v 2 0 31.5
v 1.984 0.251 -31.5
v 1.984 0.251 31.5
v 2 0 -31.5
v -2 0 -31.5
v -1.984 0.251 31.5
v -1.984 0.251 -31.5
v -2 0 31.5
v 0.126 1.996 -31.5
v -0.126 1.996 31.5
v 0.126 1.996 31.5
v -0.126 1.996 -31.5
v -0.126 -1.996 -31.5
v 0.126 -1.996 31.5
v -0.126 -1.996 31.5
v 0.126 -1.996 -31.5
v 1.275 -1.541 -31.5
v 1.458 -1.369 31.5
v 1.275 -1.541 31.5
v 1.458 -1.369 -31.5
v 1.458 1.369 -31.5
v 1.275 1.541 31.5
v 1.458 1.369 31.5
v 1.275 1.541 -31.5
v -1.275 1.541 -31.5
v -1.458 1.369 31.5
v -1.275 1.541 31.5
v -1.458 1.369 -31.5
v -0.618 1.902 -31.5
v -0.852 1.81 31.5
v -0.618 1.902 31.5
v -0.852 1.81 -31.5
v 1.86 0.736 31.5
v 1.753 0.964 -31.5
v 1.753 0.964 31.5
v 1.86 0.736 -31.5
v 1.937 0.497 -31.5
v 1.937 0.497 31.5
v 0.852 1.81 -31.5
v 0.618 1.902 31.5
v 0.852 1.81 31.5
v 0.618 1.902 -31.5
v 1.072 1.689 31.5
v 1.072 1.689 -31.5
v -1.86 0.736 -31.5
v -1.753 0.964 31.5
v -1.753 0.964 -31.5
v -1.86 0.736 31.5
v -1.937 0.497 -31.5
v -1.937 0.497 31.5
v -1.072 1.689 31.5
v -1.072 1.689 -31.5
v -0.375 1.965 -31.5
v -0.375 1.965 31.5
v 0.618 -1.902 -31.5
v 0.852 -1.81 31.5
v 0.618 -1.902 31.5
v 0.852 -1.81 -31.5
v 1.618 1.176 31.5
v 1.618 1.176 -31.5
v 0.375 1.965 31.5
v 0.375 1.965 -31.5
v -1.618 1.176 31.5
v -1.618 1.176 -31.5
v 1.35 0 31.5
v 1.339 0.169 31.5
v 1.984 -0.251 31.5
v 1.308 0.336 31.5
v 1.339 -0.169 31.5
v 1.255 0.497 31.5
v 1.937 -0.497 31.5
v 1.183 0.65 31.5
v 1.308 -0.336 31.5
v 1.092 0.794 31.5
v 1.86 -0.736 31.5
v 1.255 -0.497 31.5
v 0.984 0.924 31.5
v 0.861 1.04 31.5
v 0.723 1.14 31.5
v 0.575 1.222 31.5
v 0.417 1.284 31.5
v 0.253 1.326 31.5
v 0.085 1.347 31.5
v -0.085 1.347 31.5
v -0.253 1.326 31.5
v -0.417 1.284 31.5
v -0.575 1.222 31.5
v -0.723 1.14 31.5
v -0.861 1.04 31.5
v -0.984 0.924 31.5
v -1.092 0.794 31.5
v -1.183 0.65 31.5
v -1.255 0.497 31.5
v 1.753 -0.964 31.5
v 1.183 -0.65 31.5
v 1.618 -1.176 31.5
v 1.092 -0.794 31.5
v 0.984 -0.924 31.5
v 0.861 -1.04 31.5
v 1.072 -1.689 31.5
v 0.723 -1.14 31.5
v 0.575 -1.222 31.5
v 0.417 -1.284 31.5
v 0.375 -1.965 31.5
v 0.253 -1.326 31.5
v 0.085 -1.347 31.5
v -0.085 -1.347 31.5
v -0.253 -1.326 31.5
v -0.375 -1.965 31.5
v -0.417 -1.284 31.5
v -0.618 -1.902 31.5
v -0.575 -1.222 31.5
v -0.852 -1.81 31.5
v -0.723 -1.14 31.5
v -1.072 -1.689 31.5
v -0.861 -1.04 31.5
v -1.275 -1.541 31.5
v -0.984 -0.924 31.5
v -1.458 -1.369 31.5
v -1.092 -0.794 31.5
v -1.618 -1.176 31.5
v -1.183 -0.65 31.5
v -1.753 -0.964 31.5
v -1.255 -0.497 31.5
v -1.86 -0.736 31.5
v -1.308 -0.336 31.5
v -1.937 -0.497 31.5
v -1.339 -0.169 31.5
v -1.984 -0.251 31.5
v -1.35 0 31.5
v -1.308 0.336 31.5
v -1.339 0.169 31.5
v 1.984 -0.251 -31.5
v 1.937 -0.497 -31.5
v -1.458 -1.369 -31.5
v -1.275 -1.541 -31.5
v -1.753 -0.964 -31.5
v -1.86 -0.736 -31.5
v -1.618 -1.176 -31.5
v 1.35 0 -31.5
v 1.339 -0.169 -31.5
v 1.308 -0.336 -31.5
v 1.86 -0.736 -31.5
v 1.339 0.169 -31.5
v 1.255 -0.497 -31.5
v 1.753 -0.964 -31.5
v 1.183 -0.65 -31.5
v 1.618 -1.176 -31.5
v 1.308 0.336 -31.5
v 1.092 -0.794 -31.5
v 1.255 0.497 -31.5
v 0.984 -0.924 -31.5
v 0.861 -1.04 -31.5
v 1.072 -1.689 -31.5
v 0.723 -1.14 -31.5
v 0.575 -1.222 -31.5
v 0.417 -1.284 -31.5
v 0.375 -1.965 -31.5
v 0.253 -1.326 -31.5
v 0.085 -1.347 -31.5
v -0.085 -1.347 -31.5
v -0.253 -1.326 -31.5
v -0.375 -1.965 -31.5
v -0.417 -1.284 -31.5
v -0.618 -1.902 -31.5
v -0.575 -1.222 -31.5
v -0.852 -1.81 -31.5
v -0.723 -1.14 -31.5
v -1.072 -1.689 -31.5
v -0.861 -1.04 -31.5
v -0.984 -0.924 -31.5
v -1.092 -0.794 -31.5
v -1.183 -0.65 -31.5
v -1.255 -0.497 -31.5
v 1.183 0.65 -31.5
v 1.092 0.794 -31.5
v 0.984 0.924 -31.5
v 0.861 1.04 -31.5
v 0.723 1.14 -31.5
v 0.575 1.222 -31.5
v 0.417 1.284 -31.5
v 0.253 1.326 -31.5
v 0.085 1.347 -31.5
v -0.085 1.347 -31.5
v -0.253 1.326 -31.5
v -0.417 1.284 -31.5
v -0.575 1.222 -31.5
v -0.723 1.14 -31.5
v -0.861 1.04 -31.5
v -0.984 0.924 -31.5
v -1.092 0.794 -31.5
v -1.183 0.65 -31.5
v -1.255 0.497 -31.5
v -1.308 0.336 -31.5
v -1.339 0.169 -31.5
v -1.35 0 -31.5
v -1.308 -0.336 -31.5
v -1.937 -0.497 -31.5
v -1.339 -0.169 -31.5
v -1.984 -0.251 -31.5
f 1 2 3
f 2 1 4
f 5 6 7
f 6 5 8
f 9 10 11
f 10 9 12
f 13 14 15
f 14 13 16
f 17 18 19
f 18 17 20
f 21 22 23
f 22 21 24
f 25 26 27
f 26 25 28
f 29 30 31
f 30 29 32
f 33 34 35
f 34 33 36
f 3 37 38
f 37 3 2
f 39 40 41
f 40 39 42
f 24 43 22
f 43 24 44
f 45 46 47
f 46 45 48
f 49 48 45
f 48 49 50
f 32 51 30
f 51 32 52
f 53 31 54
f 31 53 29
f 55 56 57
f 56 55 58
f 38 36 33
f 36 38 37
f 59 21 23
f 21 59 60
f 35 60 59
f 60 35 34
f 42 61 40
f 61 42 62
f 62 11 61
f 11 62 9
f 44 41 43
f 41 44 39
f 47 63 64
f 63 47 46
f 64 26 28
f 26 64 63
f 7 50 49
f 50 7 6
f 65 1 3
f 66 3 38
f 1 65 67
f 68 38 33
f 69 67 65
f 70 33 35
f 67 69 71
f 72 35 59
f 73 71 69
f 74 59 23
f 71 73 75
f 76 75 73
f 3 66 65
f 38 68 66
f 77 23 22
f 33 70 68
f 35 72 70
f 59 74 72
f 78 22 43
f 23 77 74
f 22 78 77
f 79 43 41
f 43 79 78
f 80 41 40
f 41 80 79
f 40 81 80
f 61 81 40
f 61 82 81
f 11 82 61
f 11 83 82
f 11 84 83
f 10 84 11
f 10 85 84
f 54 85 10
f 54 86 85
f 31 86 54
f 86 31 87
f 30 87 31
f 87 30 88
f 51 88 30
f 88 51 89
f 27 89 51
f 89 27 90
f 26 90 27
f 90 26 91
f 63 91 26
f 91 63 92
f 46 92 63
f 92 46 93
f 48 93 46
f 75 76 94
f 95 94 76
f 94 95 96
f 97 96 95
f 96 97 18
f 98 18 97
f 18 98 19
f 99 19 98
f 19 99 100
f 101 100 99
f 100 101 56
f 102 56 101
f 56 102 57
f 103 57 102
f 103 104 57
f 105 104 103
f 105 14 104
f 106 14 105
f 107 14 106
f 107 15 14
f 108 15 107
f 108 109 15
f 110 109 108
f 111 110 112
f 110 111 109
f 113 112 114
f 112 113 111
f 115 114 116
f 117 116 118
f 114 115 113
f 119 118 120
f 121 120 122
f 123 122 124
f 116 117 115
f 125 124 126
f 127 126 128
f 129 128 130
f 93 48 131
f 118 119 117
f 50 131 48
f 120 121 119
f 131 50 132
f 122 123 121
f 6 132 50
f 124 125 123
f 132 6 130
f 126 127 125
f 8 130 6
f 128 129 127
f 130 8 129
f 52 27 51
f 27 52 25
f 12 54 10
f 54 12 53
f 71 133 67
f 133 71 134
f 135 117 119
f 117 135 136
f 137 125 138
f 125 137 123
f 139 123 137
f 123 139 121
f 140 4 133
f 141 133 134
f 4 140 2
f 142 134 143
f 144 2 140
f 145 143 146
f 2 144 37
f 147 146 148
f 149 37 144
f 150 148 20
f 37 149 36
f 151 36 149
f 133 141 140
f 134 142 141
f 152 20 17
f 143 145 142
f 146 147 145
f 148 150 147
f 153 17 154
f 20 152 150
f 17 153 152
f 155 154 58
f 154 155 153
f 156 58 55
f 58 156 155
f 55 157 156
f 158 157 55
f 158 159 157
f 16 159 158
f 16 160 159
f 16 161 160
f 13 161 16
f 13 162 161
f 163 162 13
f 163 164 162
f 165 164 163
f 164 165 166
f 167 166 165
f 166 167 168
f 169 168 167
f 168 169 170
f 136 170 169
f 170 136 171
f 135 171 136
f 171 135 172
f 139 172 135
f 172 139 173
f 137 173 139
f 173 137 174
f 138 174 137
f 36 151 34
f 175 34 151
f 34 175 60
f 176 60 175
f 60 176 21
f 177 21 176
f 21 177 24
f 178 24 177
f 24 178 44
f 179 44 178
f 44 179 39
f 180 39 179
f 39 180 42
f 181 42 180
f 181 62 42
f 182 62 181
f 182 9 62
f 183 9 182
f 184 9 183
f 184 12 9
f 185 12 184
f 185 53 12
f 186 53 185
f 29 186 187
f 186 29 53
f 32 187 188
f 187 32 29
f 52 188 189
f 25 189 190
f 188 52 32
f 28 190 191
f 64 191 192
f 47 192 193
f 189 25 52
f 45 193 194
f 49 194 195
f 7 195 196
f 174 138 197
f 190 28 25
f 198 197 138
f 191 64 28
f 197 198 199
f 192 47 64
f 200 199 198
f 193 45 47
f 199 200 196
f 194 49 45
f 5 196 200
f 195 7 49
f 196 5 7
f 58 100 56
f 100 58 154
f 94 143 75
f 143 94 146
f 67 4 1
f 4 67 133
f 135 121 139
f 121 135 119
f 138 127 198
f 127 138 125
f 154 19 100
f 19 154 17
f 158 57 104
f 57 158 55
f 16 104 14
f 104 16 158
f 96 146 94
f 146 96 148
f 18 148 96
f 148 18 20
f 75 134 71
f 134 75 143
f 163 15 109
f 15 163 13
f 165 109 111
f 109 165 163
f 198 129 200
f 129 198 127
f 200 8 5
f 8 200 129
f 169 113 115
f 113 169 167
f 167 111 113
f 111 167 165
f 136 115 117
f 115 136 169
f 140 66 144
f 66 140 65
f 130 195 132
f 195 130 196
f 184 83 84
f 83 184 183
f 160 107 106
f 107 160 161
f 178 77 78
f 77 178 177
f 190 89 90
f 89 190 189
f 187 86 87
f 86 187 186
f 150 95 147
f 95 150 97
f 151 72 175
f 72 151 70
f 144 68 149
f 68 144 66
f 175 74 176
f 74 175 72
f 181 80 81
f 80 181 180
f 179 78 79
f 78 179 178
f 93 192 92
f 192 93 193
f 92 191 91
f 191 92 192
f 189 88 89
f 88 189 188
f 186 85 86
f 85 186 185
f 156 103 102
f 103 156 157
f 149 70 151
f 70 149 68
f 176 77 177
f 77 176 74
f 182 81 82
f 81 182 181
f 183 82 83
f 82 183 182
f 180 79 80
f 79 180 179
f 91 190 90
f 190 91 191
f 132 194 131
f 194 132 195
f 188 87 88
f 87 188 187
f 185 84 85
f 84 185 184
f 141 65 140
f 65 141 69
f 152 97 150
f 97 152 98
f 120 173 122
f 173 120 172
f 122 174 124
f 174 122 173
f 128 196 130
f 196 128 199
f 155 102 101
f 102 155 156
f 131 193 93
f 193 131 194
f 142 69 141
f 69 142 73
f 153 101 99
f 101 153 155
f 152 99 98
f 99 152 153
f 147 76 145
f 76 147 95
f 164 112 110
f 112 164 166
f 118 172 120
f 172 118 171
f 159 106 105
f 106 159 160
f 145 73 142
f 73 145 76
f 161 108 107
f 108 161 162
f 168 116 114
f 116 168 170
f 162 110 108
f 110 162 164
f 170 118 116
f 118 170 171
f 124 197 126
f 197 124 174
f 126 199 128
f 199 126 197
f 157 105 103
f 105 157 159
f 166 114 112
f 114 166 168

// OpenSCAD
$fn = 50;


difference() {
	union() {
		translate(v = [0, 0, -31.5000000000]) {
			cylinder(h = 63, r = 2.0000000000);
		}
	}
	union() {
		translate(v = [0, 0, -100.0000000000]) {
			cylinder(h = 200, r = 1.3500000000);
		}
	}
}
